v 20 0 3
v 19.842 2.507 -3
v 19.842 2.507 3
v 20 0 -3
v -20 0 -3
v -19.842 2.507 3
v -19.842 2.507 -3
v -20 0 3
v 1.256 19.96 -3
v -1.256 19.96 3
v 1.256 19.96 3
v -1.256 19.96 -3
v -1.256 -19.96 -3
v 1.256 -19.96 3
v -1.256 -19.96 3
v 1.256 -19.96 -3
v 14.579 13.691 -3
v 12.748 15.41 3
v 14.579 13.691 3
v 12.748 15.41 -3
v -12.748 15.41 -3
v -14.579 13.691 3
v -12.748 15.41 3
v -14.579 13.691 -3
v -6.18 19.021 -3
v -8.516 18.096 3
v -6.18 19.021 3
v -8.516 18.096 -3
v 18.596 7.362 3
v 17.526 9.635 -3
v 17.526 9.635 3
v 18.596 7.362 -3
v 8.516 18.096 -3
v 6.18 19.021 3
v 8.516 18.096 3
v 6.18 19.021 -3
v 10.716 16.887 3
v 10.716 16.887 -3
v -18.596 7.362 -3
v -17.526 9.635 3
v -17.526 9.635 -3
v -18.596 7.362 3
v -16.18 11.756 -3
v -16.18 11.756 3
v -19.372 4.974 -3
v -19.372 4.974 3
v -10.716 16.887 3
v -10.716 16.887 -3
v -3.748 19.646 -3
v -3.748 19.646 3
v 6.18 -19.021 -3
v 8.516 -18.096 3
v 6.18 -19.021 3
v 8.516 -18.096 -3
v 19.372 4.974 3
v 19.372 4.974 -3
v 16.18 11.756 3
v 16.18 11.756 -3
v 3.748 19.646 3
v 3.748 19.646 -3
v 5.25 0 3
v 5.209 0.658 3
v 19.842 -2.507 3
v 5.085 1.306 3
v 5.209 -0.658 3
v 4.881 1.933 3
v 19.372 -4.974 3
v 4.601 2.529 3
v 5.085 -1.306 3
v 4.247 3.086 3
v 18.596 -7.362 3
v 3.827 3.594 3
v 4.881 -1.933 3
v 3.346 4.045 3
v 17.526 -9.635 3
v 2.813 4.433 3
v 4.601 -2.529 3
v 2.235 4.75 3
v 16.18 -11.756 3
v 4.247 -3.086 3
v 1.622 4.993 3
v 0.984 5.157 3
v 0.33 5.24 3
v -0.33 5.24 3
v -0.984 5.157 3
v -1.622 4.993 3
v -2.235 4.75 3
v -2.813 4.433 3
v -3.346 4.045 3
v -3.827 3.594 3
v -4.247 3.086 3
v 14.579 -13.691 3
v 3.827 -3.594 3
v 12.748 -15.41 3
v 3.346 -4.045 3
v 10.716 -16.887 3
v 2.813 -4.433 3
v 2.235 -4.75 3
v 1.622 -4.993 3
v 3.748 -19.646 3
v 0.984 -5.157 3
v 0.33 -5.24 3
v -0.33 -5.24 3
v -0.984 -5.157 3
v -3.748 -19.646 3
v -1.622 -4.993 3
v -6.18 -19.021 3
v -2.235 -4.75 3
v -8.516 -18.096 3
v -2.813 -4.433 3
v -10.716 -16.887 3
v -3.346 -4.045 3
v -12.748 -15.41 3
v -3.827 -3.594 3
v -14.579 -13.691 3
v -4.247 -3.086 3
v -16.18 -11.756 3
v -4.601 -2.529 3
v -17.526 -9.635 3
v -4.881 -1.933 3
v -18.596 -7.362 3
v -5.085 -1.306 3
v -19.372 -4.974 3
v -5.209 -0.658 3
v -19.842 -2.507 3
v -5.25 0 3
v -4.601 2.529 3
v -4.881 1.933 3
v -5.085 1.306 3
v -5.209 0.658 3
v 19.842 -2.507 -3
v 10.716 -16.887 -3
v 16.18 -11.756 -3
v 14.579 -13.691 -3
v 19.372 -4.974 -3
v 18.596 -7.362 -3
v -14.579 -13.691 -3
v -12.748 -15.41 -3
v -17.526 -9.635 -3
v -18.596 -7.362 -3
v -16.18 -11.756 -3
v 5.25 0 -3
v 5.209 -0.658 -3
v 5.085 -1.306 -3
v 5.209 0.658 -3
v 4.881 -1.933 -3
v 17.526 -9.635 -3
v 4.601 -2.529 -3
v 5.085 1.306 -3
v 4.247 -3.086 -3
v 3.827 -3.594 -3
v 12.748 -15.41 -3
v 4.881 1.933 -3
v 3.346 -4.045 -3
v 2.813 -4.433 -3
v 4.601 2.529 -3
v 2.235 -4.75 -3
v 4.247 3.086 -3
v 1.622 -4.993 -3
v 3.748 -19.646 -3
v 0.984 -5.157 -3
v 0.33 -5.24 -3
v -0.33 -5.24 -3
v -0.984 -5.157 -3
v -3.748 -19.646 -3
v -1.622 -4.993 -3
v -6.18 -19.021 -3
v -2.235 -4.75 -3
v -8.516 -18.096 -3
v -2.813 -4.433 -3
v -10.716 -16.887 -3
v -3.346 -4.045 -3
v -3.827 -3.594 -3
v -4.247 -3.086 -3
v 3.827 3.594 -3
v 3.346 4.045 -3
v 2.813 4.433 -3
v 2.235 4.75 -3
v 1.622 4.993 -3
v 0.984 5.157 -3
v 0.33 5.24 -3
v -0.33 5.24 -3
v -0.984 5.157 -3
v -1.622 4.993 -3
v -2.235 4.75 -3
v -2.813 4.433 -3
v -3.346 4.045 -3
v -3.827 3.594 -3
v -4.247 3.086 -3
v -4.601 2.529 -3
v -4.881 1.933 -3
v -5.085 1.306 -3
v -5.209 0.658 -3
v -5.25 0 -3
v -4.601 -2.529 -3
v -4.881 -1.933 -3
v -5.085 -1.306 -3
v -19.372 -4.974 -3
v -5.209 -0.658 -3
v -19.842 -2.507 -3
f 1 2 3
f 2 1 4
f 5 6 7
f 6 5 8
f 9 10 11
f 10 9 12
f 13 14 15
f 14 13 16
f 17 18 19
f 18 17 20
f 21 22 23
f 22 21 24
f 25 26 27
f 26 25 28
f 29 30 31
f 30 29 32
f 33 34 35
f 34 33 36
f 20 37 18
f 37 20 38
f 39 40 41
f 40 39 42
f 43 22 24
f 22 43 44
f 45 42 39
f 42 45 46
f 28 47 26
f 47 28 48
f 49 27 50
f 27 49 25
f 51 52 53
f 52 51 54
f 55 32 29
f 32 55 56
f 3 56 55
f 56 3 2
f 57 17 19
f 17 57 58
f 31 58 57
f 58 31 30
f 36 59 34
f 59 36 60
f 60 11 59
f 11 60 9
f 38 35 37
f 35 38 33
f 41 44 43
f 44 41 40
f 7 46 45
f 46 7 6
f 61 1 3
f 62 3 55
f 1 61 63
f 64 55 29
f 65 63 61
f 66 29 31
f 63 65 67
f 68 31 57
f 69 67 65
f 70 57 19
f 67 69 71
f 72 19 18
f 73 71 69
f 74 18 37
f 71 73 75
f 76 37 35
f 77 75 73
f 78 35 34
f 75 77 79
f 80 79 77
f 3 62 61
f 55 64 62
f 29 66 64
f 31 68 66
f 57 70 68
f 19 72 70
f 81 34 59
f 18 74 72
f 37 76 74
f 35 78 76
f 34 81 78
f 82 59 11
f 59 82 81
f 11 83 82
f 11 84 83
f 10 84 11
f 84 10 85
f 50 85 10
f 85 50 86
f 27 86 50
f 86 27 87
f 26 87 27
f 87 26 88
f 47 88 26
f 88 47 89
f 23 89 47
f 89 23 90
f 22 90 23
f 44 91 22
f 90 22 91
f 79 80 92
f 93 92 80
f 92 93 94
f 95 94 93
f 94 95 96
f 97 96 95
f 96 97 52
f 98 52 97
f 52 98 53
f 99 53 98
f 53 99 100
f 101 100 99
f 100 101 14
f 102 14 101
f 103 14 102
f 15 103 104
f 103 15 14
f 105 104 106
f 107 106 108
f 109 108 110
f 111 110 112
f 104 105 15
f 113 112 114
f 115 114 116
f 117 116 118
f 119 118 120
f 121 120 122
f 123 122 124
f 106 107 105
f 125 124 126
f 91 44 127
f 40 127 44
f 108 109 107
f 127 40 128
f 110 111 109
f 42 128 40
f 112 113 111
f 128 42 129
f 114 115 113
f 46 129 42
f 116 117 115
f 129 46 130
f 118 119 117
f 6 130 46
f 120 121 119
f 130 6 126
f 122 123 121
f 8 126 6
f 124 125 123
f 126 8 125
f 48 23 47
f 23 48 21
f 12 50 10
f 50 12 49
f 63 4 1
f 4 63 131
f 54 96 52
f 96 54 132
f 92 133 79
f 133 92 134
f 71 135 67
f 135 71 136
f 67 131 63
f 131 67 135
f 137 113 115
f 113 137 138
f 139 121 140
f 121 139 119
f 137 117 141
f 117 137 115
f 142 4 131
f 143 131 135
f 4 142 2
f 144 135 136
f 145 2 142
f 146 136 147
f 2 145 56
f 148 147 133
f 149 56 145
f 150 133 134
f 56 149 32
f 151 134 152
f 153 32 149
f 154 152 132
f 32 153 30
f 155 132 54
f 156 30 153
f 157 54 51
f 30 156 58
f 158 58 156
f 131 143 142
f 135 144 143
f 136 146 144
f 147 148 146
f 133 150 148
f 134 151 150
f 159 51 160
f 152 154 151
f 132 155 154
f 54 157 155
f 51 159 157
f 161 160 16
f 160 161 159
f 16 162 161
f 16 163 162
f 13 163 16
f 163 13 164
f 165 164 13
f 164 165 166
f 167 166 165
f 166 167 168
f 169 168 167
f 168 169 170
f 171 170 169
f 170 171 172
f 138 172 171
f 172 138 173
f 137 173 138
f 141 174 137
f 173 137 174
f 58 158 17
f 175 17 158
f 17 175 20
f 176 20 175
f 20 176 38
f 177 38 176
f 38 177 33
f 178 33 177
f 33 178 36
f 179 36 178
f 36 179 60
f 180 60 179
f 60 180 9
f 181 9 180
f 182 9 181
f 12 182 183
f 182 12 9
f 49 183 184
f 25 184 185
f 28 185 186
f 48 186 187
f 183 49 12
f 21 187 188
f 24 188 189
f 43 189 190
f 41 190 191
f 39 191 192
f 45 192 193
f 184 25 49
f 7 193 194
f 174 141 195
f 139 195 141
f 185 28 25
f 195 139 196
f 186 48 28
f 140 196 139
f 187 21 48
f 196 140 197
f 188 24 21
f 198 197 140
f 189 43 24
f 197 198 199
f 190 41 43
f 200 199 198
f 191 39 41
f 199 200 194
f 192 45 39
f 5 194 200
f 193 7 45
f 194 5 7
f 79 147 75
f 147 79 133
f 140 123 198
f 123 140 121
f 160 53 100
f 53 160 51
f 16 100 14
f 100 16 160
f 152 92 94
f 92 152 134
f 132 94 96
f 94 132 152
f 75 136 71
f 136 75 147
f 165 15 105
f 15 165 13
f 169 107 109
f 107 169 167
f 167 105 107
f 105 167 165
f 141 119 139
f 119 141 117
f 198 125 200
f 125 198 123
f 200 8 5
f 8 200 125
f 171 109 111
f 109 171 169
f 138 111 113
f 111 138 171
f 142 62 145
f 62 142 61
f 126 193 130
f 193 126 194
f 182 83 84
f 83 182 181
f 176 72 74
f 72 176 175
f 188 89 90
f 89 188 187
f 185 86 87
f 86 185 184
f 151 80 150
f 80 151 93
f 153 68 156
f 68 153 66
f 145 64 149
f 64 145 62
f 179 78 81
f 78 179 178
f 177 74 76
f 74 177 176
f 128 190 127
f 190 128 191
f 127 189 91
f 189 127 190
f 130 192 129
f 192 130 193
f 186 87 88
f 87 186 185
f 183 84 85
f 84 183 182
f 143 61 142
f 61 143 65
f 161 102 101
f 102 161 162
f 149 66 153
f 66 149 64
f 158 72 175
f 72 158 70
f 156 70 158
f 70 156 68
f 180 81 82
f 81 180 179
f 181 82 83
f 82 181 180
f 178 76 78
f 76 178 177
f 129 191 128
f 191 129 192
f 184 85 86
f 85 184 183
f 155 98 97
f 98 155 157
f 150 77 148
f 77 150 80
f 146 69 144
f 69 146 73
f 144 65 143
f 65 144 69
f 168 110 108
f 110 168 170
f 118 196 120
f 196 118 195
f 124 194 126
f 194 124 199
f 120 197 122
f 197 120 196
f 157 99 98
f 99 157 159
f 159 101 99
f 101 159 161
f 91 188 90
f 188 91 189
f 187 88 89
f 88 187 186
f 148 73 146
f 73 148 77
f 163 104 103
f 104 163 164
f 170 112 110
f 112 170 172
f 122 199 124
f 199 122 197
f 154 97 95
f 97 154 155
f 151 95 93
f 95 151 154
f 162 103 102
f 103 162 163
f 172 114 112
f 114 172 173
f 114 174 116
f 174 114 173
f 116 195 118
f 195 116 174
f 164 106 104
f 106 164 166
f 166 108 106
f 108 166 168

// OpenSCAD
$fn = 50;


difference() {
	union() {
		translate(v = [0, 0, -3.0000000000]) {
			cylinder(h = 6, r = 20.0000000000);
		}
	}
	union() {
		translate(v = [0, 0, -100.0000000000]) {
			cylinder(h = 200, r = 5.2500000000);
		}
	}
}
